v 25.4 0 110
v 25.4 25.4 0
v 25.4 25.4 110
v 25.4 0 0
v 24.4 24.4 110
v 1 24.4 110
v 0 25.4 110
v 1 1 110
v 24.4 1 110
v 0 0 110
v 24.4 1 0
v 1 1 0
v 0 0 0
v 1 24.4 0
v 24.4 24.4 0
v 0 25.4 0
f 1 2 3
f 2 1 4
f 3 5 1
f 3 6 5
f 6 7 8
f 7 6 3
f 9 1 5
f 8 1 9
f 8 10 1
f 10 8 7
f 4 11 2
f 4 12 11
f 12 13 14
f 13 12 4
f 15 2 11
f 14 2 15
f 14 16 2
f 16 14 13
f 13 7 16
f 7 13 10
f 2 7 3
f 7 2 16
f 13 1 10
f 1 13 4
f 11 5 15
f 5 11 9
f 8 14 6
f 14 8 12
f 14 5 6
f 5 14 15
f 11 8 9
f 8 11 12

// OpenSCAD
// V3.2 빈 덕트 (Empty Duct)
// [공통] 외부 단면 25.4×25.4 mm, 외벽 1 mm → 내부 23.4×23.4 mm, 전체 길이 110 mm
// 25.4mm 외부 큐브에서 23.4mm 내부 큐브를 빼는 CSG

OUTER_X = 25.4;
OUTER_Y = 25.4;
OUTER_Z = 110.0;
WALL_MM = 1.0;
INNER_XY = 23.4;  // 25.4 - 2*1

difference() {
    cube([OUTER_X, OUTER_Y, OUTER_Z], center = false);
    translate([WALL_MM, WALL_MM, 0])
        cube([INNER_XY, INNER_XY, OUTER_Z], center = false);
}
